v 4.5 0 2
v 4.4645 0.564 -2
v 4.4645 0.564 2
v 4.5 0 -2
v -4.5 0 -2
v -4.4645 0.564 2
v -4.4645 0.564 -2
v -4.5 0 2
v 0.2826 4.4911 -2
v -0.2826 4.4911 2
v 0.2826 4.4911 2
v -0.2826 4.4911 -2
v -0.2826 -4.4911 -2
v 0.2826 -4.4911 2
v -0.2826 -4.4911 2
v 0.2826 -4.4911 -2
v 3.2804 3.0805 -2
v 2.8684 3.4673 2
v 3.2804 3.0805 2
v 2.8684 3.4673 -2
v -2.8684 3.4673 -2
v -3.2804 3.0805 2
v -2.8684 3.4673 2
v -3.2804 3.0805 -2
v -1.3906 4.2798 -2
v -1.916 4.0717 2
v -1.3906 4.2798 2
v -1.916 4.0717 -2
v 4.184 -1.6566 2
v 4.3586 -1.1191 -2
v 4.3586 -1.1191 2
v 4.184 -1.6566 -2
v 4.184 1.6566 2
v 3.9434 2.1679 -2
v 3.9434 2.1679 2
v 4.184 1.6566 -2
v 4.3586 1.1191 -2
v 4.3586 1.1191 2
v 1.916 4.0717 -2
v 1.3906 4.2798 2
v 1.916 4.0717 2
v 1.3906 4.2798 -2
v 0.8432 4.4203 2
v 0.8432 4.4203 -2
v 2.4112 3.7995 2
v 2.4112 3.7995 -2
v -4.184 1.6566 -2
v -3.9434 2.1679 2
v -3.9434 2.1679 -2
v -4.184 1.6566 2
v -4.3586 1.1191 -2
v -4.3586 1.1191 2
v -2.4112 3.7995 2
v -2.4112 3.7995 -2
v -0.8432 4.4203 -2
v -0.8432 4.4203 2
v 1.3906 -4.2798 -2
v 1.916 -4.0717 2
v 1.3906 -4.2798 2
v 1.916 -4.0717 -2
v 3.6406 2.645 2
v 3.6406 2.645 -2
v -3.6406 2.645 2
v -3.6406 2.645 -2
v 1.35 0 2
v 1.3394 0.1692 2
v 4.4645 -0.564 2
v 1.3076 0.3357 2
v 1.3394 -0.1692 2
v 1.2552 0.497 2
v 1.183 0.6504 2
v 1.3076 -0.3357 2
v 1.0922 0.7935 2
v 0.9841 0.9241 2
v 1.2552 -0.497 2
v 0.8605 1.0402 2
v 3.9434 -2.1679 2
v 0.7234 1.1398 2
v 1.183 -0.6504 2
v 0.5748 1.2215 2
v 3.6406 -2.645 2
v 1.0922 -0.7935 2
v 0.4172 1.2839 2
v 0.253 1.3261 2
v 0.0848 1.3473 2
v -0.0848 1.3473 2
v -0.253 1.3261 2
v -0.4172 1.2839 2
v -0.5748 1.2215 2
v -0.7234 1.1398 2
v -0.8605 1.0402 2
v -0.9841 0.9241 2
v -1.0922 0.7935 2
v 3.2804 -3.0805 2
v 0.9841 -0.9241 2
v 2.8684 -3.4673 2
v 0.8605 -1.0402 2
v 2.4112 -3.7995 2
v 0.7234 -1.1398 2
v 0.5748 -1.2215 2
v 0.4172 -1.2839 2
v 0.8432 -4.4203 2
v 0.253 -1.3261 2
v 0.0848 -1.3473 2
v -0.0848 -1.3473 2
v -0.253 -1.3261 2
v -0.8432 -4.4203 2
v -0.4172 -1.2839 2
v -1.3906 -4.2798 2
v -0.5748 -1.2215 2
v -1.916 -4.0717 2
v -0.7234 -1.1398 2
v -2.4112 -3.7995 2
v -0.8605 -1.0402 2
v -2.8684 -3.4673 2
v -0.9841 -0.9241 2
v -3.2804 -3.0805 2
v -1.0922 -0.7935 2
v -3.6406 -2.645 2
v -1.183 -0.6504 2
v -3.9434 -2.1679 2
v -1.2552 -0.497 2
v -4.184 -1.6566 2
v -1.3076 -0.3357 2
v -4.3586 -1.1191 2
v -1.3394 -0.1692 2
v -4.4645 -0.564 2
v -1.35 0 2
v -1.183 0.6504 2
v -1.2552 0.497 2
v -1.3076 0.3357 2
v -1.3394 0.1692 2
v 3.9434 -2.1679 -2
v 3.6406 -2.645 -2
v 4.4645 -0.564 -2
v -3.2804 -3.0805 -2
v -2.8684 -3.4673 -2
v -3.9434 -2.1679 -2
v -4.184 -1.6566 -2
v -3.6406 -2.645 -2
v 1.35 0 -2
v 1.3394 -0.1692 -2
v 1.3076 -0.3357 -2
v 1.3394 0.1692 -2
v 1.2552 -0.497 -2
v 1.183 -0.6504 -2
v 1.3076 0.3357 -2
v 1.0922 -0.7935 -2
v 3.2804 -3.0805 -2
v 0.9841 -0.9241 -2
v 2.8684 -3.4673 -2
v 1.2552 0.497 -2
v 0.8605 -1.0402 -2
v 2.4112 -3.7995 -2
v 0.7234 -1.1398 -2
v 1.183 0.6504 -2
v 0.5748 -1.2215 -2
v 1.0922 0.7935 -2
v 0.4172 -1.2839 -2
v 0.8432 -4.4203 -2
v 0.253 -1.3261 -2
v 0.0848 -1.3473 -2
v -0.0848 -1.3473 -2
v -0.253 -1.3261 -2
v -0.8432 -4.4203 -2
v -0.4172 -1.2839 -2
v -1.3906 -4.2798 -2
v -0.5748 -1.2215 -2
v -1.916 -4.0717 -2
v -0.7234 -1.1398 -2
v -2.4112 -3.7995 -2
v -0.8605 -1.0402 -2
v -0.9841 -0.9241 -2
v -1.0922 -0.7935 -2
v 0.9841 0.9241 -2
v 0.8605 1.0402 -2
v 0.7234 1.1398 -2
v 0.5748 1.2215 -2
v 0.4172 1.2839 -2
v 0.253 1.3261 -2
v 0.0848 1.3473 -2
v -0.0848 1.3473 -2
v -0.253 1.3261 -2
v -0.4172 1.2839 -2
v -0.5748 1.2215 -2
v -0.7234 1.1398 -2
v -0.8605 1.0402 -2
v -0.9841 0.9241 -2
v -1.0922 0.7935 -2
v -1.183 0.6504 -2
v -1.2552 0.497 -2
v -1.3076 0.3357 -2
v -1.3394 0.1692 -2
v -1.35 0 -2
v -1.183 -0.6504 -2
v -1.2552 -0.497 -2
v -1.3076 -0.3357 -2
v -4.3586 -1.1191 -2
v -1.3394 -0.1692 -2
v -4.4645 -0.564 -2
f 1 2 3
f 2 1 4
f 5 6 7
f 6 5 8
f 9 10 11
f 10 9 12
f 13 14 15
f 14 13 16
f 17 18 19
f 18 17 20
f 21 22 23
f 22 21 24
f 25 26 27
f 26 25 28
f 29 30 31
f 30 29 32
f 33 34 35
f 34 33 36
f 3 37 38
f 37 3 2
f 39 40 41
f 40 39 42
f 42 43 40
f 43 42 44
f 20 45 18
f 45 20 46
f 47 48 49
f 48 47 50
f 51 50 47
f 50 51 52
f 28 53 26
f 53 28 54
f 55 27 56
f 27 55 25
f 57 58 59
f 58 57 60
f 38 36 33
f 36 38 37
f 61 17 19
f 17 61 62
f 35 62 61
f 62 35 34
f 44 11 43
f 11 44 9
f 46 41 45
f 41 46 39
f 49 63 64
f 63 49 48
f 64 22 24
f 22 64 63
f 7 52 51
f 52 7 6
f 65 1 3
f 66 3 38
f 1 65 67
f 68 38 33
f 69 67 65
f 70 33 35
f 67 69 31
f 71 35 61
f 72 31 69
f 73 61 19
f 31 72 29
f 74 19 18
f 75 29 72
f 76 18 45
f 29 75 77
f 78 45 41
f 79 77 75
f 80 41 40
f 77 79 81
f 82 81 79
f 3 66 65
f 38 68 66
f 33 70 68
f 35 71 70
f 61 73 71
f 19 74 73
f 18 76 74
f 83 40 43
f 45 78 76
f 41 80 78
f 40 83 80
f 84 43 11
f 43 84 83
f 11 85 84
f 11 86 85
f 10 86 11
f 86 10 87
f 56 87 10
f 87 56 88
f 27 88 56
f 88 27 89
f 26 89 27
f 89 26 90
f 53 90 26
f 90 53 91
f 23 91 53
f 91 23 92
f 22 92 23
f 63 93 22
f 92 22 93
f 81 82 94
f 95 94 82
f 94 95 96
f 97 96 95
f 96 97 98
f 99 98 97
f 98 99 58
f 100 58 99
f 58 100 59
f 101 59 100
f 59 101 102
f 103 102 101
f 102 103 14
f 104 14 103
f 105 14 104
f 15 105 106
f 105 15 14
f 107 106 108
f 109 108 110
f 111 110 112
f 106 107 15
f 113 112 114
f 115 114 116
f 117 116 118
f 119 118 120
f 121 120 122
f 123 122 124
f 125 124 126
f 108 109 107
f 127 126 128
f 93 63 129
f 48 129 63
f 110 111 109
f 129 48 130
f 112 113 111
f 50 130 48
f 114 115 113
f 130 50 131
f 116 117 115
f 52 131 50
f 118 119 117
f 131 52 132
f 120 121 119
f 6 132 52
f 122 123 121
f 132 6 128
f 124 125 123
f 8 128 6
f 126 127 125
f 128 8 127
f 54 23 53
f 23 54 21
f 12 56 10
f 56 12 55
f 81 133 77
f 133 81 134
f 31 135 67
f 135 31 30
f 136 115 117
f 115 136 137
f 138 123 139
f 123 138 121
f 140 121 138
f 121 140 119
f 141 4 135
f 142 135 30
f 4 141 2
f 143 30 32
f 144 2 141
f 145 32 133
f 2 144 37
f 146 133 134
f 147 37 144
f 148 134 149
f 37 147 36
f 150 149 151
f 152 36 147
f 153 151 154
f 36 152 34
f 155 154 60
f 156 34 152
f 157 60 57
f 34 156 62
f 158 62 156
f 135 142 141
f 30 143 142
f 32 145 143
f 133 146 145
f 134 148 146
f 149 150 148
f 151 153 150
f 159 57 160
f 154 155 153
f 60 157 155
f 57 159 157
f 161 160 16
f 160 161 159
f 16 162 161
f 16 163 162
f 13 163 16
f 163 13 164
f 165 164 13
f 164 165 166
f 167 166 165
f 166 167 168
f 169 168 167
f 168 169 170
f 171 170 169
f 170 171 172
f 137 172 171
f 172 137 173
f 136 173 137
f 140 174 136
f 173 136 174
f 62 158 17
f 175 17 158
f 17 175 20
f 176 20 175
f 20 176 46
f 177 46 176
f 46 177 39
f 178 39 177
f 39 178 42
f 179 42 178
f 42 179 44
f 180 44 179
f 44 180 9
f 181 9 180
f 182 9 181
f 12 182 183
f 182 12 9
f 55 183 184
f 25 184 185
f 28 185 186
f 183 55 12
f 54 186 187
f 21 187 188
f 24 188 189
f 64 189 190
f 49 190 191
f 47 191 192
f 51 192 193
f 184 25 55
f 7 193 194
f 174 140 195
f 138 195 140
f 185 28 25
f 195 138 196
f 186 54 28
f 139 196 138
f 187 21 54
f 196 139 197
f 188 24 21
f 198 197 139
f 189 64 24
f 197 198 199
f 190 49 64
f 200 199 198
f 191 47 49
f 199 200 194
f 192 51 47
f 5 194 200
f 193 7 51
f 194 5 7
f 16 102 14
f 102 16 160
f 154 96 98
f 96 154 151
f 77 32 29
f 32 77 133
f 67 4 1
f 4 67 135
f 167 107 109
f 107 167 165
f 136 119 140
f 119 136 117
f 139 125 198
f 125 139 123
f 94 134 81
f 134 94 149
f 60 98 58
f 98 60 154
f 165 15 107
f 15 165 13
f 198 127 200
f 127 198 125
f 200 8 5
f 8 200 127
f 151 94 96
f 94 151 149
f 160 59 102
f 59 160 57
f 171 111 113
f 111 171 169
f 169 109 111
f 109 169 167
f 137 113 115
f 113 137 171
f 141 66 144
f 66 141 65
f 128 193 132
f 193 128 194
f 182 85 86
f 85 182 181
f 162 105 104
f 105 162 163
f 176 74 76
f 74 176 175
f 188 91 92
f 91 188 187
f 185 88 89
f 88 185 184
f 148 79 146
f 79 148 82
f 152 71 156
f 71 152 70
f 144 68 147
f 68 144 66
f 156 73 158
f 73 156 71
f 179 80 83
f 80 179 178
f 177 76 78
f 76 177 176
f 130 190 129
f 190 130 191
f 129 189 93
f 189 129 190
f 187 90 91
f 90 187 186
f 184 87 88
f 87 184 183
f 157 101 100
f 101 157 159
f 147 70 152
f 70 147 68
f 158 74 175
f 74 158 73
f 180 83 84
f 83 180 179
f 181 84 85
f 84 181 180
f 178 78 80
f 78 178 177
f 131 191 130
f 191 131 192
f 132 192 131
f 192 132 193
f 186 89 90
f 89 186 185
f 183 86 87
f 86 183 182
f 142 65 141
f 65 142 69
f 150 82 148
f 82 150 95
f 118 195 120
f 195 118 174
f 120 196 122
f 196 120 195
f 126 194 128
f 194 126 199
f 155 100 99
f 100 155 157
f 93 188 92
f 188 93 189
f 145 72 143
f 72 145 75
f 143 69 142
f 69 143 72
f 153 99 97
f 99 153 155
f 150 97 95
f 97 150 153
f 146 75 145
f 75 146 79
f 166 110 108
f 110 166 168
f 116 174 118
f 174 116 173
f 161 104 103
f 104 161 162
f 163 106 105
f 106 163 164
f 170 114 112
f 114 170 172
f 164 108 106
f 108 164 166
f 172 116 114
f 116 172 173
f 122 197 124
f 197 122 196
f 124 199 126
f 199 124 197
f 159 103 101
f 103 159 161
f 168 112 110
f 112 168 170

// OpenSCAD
$fn = 50;


difference() {
	union() {
		translate(v = [0, 0, -2.0000000000]) {
			cylinder(h = 4, r = 4.5000000000);
		}
	}
	union() {
		translate(v = [0, 0, -100.0000000000]) {
			cylinder(h = 200, r = 1.3500000000);
		}
	}
}
